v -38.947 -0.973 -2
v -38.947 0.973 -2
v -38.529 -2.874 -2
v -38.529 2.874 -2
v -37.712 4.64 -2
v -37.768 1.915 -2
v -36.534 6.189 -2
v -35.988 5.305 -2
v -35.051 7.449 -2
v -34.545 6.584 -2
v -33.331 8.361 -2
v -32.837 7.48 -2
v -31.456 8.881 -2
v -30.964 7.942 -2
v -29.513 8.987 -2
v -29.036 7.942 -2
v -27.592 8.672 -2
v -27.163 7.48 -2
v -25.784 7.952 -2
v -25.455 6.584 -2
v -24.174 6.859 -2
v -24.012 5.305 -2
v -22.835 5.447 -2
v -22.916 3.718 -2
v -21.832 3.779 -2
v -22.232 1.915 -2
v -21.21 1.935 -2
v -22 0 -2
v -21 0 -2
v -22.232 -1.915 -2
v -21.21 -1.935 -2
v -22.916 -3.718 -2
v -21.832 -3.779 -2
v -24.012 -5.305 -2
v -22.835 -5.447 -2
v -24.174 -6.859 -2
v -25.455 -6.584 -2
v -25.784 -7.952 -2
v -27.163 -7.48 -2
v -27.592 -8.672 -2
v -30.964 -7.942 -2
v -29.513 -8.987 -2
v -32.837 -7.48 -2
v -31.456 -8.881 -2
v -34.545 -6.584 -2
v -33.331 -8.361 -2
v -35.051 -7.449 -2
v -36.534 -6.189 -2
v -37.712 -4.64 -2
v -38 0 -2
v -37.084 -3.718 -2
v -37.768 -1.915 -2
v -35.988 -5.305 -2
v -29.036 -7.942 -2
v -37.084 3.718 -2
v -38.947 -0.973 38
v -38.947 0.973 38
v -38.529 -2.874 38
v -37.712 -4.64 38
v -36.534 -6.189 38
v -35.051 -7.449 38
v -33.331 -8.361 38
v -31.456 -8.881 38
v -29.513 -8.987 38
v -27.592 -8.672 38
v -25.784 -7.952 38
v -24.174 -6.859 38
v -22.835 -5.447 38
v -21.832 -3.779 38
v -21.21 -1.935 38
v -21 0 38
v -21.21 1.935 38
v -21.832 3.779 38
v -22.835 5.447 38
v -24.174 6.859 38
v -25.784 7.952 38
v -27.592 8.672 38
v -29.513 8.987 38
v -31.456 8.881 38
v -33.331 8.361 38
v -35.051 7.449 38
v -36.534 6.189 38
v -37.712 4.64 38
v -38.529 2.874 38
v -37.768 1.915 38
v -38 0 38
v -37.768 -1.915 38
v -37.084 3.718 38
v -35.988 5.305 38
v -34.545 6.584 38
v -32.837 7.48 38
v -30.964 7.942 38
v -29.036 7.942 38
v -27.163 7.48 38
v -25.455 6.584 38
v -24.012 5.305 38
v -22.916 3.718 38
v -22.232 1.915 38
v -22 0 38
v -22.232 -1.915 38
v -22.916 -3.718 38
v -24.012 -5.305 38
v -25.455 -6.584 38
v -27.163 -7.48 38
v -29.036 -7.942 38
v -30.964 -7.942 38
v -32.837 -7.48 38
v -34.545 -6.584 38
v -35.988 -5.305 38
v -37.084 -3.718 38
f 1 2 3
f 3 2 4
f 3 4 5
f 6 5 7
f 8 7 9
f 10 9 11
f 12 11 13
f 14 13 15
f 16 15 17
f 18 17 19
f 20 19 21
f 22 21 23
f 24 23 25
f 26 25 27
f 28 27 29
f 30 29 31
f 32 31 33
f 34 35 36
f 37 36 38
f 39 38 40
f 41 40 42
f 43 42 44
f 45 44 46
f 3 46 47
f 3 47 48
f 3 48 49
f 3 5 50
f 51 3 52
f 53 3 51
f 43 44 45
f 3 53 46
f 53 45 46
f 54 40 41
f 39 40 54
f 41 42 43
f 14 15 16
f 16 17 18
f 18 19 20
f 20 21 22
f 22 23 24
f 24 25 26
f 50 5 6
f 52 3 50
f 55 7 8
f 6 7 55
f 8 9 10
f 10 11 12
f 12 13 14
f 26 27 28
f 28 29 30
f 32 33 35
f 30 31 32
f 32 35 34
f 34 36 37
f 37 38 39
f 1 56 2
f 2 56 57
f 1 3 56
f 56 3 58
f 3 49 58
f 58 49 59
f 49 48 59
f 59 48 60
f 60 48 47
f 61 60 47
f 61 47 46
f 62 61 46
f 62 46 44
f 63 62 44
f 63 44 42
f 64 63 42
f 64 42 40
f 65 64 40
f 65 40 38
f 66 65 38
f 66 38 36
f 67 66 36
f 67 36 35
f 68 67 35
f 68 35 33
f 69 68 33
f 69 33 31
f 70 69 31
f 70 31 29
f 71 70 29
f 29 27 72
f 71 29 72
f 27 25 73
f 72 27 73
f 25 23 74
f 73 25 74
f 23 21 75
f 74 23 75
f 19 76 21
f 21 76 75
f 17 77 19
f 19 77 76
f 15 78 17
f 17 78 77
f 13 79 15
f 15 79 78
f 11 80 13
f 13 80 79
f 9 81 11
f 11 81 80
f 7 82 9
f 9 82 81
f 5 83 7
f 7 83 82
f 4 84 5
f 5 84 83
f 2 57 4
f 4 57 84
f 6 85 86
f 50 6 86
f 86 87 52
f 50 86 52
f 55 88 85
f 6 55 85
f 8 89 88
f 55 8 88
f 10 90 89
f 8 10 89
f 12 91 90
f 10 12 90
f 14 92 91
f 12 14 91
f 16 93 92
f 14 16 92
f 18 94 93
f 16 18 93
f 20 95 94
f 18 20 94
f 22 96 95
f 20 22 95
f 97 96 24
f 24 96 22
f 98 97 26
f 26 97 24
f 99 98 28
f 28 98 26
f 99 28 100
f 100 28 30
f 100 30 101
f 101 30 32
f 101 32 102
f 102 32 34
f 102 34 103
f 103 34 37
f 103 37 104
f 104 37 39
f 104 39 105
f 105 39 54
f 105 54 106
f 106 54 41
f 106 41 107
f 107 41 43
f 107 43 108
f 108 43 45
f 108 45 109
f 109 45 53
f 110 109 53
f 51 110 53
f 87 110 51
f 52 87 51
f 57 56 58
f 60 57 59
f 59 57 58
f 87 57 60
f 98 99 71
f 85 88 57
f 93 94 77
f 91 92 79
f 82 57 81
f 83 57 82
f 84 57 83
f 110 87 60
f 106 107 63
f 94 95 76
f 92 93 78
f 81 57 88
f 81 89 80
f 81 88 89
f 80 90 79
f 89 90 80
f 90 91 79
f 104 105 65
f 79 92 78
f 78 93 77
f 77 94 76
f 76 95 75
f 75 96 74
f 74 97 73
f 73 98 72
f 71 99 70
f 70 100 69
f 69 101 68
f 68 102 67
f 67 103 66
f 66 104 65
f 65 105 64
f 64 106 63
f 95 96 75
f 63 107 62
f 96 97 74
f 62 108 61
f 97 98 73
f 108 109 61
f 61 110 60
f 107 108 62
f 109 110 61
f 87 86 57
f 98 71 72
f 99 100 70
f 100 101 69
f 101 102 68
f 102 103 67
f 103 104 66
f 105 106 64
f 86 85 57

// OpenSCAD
// file: constants.scad
//-------------------------------------------------------------
//-- Futaba Horn from Servo wheel by Juan Gonzalez (obijuan) juan@iearobotics.com
//-------------------------------------------------------------

//-- Wheel parameters
wheel_or_idiam = 50;                   //-- O-ring inner diameter
wheel_or_diam = 1;                     //-- O-ring section diameter
wheel_height = 2*wheel_or_diam+0;     //-- Wheel height: change the 0 for 
                                      //-- other value (0 equals minimun height)
//-- Parameters common to all horns
horn_drill_diam = 2;
horn_height = 8;        //-- Total height: shaft + plate
horn_plate_height = 2;  //-- plate height

//-- Futaba 3003 servo rounded horn parameters
rh_diam1 = 8.5;  //-- Rounded horn small diameter
rh_diam2 = 24; //-- Rounded horn big diameter
rounded_horn_drill_distance = 7.3;

//-- Futaba 3003 4-arm horn parameters
a4h_end_diam = 5;
a4h_center_diam = 10;
a4h_arm_length = 15;
a4h_drill_distance = 13.3;

//-- Pill parameters
pill_diam = 16;
pill_height = 8;
pill_holder = pill_diam * 1.5;

length = 70;
// main file
include <constants.scad>;

module tube(pills=1) {
	difference() {
		cylinder(h=(pill_height * pills), r=(pill_diam + 2) / 2);
		translate([0, 0, -1])
			cylinder(h=(pill_height * pills) + 2, r=pill_diam / 2);
	}
}

translate([-30, 0, -wheel_height])
	tube(5);
